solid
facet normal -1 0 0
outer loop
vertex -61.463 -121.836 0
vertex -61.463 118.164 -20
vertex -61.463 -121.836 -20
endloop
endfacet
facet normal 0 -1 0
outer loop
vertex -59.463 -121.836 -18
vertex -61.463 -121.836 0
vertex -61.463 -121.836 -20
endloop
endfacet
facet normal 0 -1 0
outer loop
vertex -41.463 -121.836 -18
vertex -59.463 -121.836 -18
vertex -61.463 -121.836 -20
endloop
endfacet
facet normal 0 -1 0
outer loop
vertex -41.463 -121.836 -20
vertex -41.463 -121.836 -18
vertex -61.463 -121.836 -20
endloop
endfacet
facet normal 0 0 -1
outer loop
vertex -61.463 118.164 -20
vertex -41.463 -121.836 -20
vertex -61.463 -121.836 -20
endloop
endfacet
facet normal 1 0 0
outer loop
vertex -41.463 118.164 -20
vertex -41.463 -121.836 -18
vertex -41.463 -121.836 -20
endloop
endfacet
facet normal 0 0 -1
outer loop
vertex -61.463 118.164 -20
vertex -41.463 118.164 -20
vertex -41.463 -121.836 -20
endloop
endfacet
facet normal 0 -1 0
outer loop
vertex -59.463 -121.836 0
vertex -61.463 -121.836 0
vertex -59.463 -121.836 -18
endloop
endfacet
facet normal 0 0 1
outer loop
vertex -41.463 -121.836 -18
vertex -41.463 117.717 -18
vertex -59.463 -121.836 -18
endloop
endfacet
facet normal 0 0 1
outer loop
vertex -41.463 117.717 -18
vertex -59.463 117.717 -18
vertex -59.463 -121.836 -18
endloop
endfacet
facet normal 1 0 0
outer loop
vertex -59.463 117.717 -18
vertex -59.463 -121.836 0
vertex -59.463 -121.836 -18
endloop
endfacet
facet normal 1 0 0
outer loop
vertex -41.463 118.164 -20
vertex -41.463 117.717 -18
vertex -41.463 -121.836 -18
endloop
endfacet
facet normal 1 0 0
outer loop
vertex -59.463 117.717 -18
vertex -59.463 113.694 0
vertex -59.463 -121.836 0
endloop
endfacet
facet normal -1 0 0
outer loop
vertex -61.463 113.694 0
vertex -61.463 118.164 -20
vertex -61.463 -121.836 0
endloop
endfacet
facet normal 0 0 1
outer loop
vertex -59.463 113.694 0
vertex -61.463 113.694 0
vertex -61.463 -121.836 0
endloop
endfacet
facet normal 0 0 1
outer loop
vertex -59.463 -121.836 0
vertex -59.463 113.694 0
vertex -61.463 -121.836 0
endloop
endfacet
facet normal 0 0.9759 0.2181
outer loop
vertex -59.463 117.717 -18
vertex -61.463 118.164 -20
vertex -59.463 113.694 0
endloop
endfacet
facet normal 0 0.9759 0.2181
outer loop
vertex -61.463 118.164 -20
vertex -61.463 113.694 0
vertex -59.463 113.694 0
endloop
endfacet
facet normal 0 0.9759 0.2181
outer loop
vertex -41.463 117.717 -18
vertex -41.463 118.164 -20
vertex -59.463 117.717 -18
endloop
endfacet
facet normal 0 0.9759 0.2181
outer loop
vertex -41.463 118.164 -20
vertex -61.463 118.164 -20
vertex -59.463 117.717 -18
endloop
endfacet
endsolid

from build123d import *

# Parameters (mm, degrees)
SKETCH1_W           = 20
SKETCH1_H           = 240
BOSS_EXTRUDE1_DEPTH = 20
CUT_EXTRUDE1_DEPTH  = 20
SKETCH3_W           = 18
SKETCH3_H           = 18
CUT_EXTRUDE2_DEPTH  = 290


with BuildPart() as part:
    # Sketch1 → Boss-Extrude1 (new body)
    with BuildSketch(Plane.XY):
        with Locations((-51.462686567, -1.835820896)):
            Rectangle(SKETCH1_W, SKETCH1_H)
    extrude(amount=-BOSS_EXTRUDE1_DEPTH)

    # Sketch2 → Cut-Extrude1 (cut)
    with BuildSketch(Plane.ZY.offset(61.462686567)):
        Polygon((-20, 118.164179104), (0, 113.693649447), (0, 118.164179104), align=None)
    extrude(amount=-CUT_EXTRUDE1_DEPTH, mode=Mode.SUBTRACT)

    # Sketch3 → Cut-Extrude2 (cut)
    with BuildSketch(Plane.XZ.offset(121.835820896)):
        with Locations((-50.462686567, -9)):
            Rectangle(SKETCH3_W, SKETCH3_H)
    extrude(amount=-CUT_EXTRUDE2_DEPTH, mode=Mode.SUBTRACT)


solid = part.part
